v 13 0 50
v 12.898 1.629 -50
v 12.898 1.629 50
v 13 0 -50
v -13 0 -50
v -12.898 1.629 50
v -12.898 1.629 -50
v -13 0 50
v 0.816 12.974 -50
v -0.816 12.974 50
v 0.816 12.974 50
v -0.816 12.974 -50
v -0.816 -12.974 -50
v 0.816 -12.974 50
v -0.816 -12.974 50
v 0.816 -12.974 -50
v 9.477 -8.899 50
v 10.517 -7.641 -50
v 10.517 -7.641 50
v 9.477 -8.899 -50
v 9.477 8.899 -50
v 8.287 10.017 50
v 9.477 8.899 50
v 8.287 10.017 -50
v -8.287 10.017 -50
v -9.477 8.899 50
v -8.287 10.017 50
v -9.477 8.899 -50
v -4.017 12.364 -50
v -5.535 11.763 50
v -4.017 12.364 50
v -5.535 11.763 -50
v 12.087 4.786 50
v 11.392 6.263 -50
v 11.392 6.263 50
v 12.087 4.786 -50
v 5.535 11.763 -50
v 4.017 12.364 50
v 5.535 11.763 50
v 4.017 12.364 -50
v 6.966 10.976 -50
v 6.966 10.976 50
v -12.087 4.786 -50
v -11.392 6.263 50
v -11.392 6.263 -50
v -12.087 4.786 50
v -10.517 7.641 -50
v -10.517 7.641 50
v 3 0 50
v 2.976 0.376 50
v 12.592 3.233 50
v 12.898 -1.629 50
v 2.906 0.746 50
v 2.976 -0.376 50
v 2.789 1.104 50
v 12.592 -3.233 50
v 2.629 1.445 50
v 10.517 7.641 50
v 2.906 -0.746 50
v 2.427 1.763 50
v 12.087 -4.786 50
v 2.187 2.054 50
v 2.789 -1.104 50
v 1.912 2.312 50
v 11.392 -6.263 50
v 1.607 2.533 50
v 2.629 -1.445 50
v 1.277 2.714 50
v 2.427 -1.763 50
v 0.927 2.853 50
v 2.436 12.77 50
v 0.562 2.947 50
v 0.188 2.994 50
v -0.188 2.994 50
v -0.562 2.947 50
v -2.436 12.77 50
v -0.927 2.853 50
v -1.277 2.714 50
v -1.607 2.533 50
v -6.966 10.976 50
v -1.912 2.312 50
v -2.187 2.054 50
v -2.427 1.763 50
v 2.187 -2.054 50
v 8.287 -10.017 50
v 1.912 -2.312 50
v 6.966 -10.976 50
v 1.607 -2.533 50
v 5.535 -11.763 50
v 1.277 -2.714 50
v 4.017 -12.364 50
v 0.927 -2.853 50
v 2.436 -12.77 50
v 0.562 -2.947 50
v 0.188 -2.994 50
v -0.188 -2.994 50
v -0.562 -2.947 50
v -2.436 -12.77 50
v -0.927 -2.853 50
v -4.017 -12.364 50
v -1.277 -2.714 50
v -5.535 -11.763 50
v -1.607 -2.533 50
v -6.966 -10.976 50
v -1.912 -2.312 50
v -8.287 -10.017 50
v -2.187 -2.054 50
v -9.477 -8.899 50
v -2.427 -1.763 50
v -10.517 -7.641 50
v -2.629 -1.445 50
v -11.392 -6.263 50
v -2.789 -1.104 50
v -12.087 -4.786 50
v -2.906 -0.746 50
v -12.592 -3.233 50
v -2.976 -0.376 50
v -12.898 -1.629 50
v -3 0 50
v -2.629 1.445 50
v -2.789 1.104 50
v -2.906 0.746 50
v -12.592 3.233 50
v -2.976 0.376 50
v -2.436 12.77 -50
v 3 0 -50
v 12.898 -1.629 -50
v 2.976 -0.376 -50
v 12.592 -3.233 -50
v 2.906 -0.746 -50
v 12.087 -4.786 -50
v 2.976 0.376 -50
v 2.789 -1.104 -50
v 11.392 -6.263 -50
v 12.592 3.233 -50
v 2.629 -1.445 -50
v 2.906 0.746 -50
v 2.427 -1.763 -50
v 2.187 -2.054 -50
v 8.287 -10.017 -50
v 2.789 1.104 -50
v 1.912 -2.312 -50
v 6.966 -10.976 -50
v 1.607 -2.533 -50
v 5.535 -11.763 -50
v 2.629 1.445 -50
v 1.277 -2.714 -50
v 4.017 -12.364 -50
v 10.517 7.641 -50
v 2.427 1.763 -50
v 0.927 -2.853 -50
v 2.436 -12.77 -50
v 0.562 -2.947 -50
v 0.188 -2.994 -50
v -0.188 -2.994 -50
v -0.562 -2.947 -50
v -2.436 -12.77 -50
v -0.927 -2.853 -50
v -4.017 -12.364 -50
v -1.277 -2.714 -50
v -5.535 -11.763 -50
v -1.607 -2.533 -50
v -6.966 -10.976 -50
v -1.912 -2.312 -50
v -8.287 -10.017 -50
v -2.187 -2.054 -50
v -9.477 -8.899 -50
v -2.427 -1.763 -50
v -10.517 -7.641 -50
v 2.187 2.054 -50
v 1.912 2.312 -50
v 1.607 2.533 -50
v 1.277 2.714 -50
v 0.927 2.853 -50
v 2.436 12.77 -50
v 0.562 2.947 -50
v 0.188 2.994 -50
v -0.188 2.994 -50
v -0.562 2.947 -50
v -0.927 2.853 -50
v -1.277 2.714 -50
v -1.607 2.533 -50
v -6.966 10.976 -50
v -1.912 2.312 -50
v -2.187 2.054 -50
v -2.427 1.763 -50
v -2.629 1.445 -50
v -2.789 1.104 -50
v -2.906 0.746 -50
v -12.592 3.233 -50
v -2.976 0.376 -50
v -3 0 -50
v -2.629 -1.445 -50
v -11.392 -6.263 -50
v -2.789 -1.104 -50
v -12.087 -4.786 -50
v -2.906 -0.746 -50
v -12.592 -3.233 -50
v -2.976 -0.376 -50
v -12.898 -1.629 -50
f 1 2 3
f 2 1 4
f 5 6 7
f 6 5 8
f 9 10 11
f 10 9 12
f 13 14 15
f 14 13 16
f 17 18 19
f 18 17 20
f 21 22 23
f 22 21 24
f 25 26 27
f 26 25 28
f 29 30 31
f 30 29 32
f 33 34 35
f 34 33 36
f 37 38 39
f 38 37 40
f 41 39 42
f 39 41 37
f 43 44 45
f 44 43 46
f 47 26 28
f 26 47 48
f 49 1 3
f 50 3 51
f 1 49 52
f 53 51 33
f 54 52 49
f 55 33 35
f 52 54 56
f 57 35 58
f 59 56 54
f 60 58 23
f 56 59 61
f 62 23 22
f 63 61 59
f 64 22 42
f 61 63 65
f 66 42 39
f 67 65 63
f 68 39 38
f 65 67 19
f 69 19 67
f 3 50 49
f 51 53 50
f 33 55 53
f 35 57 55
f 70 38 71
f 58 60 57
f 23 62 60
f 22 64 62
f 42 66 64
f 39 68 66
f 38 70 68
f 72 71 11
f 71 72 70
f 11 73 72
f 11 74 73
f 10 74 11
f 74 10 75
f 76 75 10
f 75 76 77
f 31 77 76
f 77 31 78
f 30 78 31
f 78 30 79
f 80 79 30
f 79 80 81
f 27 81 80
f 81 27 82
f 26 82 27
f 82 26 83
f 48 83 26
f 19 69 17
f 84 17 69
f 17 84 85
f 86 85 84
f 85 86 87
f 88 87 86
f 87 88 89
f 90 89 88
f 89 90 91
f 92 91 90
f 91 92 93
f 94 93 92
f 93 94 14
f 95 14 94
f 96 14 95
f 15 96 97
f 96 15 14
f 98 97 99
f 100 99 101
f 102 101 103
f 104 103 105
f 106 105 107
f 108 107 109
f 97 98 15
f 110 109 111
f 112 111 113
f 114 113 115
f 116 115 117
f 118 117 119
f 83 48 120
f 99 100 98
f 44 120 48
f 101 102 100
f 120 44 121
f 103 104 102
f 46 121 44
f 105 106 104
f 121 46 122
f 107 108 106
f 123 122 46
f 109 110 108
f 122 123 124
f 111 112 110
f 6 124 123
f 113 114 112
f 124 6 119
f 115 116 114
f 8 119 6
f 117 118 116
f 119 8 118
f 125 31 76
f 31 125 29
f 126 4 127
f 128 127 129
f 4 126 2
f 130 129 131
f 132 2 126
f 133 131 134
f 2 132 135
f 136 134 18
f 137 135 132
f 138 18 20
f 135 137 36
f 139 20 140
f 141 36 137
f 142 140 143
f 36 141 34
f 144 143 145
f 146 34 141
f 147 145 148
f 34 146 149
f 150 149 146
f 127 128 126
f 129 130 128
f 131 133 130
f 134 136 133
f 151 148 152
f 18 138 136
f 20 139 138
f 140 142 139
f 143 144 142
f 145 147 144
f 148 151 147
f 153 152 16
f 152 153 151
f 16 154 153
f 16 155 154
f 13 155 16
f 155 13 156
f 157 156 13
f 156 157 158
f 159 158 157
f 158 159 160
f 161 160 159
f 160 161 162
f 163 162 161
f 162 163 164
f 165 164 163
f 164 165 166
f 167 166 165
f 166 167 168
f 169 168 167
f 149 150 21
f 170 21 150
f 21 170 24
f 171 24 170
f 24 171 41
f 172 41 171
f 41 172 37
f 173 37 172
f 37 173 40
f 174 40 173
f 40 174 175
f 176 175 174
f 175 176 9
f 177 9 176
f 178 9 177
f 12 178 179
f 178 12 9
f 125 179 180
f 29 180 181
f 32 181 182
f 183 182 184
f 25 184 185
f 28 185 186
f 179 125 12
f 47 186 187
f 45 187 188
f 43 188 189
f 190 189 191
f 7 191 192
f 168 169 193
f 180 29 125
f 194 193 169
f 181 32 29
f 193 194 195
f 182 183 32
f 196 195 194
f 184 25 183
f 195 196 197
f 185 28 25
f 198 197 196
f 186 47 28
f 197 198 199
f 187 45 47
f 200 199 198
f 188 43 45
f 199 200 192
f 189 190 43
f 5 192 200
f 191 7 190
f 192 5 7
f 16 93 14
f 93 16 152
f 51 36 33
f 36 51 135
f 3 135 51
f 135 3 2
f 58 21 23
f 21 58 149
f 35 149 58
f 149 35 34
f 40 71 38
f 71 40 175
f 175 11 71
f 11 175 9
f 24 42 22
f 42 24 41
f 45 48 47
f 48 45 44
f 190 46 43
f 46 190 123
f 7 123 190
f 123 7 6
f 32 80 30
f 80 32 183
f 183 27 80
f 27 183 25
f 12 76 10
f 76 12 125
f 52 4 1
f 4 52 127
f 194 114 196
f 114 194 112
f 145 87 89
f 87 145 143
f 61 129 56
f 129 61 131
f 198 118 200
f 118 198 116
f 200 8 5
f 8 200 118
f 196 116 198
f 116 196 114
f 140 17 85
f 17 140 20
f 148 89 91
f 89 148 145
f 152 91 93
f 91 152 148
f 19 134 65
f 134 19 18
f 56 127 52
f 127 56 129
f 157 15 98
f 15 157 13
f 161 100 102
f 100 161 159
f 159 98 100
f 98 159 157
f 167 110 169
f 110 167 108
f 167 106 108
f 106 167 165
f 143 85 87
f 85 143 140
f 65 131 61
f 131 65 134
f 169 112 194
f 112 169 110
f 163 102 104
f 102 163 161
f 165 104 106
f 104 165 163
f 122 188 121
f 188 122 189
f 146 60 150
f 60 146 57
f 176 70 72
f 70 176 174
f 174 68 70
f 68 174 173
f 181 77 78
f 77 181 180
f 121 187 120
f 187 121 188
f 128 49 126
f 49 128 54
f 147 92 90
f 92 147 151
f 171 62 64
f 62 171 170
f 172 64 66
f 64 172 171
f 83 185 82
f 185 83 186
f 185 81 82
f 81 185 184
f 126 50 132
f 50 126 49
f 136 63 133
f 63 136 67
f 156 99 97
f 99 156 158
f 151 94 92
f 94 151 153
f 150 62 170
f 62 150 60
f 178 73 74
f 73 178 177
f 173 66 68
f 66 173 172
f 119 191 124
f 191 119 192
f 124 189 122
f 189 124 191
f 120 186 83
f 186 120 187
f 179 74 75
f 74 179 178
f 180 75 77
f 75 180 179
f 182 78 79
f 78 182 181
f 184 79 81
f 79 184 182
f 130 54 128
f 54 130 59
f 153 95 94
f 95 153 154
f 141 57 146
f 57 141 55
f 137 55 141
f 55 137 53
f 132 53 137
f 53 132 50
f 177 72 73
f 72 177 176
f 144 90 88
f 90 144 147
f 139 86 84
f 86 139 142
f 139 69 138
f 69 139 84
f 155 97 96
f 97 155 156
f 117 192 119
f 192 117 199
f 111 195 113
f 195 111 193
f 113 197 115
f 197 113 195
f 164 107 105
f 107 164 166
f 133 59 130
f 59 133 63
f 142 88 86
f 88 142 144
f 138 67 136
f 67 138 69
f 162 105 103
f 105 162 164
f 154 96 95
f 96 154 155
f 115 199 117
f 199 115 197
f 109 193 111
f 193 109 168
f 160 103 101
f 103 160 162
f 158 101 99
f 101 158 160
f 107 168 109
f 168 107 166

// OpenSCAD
$fn = 50;


difference() {
	union() {
		translate(v = [0, 0, -50.0000000000]) {
			cylinder(h = 100, r = 13.0000000000);
		}
	}
	union() {
		translate(v = [0, 0, -100.0000000000]) {
			cylinder(h = 200, r = 3.0000000000);
		}
	}
}
